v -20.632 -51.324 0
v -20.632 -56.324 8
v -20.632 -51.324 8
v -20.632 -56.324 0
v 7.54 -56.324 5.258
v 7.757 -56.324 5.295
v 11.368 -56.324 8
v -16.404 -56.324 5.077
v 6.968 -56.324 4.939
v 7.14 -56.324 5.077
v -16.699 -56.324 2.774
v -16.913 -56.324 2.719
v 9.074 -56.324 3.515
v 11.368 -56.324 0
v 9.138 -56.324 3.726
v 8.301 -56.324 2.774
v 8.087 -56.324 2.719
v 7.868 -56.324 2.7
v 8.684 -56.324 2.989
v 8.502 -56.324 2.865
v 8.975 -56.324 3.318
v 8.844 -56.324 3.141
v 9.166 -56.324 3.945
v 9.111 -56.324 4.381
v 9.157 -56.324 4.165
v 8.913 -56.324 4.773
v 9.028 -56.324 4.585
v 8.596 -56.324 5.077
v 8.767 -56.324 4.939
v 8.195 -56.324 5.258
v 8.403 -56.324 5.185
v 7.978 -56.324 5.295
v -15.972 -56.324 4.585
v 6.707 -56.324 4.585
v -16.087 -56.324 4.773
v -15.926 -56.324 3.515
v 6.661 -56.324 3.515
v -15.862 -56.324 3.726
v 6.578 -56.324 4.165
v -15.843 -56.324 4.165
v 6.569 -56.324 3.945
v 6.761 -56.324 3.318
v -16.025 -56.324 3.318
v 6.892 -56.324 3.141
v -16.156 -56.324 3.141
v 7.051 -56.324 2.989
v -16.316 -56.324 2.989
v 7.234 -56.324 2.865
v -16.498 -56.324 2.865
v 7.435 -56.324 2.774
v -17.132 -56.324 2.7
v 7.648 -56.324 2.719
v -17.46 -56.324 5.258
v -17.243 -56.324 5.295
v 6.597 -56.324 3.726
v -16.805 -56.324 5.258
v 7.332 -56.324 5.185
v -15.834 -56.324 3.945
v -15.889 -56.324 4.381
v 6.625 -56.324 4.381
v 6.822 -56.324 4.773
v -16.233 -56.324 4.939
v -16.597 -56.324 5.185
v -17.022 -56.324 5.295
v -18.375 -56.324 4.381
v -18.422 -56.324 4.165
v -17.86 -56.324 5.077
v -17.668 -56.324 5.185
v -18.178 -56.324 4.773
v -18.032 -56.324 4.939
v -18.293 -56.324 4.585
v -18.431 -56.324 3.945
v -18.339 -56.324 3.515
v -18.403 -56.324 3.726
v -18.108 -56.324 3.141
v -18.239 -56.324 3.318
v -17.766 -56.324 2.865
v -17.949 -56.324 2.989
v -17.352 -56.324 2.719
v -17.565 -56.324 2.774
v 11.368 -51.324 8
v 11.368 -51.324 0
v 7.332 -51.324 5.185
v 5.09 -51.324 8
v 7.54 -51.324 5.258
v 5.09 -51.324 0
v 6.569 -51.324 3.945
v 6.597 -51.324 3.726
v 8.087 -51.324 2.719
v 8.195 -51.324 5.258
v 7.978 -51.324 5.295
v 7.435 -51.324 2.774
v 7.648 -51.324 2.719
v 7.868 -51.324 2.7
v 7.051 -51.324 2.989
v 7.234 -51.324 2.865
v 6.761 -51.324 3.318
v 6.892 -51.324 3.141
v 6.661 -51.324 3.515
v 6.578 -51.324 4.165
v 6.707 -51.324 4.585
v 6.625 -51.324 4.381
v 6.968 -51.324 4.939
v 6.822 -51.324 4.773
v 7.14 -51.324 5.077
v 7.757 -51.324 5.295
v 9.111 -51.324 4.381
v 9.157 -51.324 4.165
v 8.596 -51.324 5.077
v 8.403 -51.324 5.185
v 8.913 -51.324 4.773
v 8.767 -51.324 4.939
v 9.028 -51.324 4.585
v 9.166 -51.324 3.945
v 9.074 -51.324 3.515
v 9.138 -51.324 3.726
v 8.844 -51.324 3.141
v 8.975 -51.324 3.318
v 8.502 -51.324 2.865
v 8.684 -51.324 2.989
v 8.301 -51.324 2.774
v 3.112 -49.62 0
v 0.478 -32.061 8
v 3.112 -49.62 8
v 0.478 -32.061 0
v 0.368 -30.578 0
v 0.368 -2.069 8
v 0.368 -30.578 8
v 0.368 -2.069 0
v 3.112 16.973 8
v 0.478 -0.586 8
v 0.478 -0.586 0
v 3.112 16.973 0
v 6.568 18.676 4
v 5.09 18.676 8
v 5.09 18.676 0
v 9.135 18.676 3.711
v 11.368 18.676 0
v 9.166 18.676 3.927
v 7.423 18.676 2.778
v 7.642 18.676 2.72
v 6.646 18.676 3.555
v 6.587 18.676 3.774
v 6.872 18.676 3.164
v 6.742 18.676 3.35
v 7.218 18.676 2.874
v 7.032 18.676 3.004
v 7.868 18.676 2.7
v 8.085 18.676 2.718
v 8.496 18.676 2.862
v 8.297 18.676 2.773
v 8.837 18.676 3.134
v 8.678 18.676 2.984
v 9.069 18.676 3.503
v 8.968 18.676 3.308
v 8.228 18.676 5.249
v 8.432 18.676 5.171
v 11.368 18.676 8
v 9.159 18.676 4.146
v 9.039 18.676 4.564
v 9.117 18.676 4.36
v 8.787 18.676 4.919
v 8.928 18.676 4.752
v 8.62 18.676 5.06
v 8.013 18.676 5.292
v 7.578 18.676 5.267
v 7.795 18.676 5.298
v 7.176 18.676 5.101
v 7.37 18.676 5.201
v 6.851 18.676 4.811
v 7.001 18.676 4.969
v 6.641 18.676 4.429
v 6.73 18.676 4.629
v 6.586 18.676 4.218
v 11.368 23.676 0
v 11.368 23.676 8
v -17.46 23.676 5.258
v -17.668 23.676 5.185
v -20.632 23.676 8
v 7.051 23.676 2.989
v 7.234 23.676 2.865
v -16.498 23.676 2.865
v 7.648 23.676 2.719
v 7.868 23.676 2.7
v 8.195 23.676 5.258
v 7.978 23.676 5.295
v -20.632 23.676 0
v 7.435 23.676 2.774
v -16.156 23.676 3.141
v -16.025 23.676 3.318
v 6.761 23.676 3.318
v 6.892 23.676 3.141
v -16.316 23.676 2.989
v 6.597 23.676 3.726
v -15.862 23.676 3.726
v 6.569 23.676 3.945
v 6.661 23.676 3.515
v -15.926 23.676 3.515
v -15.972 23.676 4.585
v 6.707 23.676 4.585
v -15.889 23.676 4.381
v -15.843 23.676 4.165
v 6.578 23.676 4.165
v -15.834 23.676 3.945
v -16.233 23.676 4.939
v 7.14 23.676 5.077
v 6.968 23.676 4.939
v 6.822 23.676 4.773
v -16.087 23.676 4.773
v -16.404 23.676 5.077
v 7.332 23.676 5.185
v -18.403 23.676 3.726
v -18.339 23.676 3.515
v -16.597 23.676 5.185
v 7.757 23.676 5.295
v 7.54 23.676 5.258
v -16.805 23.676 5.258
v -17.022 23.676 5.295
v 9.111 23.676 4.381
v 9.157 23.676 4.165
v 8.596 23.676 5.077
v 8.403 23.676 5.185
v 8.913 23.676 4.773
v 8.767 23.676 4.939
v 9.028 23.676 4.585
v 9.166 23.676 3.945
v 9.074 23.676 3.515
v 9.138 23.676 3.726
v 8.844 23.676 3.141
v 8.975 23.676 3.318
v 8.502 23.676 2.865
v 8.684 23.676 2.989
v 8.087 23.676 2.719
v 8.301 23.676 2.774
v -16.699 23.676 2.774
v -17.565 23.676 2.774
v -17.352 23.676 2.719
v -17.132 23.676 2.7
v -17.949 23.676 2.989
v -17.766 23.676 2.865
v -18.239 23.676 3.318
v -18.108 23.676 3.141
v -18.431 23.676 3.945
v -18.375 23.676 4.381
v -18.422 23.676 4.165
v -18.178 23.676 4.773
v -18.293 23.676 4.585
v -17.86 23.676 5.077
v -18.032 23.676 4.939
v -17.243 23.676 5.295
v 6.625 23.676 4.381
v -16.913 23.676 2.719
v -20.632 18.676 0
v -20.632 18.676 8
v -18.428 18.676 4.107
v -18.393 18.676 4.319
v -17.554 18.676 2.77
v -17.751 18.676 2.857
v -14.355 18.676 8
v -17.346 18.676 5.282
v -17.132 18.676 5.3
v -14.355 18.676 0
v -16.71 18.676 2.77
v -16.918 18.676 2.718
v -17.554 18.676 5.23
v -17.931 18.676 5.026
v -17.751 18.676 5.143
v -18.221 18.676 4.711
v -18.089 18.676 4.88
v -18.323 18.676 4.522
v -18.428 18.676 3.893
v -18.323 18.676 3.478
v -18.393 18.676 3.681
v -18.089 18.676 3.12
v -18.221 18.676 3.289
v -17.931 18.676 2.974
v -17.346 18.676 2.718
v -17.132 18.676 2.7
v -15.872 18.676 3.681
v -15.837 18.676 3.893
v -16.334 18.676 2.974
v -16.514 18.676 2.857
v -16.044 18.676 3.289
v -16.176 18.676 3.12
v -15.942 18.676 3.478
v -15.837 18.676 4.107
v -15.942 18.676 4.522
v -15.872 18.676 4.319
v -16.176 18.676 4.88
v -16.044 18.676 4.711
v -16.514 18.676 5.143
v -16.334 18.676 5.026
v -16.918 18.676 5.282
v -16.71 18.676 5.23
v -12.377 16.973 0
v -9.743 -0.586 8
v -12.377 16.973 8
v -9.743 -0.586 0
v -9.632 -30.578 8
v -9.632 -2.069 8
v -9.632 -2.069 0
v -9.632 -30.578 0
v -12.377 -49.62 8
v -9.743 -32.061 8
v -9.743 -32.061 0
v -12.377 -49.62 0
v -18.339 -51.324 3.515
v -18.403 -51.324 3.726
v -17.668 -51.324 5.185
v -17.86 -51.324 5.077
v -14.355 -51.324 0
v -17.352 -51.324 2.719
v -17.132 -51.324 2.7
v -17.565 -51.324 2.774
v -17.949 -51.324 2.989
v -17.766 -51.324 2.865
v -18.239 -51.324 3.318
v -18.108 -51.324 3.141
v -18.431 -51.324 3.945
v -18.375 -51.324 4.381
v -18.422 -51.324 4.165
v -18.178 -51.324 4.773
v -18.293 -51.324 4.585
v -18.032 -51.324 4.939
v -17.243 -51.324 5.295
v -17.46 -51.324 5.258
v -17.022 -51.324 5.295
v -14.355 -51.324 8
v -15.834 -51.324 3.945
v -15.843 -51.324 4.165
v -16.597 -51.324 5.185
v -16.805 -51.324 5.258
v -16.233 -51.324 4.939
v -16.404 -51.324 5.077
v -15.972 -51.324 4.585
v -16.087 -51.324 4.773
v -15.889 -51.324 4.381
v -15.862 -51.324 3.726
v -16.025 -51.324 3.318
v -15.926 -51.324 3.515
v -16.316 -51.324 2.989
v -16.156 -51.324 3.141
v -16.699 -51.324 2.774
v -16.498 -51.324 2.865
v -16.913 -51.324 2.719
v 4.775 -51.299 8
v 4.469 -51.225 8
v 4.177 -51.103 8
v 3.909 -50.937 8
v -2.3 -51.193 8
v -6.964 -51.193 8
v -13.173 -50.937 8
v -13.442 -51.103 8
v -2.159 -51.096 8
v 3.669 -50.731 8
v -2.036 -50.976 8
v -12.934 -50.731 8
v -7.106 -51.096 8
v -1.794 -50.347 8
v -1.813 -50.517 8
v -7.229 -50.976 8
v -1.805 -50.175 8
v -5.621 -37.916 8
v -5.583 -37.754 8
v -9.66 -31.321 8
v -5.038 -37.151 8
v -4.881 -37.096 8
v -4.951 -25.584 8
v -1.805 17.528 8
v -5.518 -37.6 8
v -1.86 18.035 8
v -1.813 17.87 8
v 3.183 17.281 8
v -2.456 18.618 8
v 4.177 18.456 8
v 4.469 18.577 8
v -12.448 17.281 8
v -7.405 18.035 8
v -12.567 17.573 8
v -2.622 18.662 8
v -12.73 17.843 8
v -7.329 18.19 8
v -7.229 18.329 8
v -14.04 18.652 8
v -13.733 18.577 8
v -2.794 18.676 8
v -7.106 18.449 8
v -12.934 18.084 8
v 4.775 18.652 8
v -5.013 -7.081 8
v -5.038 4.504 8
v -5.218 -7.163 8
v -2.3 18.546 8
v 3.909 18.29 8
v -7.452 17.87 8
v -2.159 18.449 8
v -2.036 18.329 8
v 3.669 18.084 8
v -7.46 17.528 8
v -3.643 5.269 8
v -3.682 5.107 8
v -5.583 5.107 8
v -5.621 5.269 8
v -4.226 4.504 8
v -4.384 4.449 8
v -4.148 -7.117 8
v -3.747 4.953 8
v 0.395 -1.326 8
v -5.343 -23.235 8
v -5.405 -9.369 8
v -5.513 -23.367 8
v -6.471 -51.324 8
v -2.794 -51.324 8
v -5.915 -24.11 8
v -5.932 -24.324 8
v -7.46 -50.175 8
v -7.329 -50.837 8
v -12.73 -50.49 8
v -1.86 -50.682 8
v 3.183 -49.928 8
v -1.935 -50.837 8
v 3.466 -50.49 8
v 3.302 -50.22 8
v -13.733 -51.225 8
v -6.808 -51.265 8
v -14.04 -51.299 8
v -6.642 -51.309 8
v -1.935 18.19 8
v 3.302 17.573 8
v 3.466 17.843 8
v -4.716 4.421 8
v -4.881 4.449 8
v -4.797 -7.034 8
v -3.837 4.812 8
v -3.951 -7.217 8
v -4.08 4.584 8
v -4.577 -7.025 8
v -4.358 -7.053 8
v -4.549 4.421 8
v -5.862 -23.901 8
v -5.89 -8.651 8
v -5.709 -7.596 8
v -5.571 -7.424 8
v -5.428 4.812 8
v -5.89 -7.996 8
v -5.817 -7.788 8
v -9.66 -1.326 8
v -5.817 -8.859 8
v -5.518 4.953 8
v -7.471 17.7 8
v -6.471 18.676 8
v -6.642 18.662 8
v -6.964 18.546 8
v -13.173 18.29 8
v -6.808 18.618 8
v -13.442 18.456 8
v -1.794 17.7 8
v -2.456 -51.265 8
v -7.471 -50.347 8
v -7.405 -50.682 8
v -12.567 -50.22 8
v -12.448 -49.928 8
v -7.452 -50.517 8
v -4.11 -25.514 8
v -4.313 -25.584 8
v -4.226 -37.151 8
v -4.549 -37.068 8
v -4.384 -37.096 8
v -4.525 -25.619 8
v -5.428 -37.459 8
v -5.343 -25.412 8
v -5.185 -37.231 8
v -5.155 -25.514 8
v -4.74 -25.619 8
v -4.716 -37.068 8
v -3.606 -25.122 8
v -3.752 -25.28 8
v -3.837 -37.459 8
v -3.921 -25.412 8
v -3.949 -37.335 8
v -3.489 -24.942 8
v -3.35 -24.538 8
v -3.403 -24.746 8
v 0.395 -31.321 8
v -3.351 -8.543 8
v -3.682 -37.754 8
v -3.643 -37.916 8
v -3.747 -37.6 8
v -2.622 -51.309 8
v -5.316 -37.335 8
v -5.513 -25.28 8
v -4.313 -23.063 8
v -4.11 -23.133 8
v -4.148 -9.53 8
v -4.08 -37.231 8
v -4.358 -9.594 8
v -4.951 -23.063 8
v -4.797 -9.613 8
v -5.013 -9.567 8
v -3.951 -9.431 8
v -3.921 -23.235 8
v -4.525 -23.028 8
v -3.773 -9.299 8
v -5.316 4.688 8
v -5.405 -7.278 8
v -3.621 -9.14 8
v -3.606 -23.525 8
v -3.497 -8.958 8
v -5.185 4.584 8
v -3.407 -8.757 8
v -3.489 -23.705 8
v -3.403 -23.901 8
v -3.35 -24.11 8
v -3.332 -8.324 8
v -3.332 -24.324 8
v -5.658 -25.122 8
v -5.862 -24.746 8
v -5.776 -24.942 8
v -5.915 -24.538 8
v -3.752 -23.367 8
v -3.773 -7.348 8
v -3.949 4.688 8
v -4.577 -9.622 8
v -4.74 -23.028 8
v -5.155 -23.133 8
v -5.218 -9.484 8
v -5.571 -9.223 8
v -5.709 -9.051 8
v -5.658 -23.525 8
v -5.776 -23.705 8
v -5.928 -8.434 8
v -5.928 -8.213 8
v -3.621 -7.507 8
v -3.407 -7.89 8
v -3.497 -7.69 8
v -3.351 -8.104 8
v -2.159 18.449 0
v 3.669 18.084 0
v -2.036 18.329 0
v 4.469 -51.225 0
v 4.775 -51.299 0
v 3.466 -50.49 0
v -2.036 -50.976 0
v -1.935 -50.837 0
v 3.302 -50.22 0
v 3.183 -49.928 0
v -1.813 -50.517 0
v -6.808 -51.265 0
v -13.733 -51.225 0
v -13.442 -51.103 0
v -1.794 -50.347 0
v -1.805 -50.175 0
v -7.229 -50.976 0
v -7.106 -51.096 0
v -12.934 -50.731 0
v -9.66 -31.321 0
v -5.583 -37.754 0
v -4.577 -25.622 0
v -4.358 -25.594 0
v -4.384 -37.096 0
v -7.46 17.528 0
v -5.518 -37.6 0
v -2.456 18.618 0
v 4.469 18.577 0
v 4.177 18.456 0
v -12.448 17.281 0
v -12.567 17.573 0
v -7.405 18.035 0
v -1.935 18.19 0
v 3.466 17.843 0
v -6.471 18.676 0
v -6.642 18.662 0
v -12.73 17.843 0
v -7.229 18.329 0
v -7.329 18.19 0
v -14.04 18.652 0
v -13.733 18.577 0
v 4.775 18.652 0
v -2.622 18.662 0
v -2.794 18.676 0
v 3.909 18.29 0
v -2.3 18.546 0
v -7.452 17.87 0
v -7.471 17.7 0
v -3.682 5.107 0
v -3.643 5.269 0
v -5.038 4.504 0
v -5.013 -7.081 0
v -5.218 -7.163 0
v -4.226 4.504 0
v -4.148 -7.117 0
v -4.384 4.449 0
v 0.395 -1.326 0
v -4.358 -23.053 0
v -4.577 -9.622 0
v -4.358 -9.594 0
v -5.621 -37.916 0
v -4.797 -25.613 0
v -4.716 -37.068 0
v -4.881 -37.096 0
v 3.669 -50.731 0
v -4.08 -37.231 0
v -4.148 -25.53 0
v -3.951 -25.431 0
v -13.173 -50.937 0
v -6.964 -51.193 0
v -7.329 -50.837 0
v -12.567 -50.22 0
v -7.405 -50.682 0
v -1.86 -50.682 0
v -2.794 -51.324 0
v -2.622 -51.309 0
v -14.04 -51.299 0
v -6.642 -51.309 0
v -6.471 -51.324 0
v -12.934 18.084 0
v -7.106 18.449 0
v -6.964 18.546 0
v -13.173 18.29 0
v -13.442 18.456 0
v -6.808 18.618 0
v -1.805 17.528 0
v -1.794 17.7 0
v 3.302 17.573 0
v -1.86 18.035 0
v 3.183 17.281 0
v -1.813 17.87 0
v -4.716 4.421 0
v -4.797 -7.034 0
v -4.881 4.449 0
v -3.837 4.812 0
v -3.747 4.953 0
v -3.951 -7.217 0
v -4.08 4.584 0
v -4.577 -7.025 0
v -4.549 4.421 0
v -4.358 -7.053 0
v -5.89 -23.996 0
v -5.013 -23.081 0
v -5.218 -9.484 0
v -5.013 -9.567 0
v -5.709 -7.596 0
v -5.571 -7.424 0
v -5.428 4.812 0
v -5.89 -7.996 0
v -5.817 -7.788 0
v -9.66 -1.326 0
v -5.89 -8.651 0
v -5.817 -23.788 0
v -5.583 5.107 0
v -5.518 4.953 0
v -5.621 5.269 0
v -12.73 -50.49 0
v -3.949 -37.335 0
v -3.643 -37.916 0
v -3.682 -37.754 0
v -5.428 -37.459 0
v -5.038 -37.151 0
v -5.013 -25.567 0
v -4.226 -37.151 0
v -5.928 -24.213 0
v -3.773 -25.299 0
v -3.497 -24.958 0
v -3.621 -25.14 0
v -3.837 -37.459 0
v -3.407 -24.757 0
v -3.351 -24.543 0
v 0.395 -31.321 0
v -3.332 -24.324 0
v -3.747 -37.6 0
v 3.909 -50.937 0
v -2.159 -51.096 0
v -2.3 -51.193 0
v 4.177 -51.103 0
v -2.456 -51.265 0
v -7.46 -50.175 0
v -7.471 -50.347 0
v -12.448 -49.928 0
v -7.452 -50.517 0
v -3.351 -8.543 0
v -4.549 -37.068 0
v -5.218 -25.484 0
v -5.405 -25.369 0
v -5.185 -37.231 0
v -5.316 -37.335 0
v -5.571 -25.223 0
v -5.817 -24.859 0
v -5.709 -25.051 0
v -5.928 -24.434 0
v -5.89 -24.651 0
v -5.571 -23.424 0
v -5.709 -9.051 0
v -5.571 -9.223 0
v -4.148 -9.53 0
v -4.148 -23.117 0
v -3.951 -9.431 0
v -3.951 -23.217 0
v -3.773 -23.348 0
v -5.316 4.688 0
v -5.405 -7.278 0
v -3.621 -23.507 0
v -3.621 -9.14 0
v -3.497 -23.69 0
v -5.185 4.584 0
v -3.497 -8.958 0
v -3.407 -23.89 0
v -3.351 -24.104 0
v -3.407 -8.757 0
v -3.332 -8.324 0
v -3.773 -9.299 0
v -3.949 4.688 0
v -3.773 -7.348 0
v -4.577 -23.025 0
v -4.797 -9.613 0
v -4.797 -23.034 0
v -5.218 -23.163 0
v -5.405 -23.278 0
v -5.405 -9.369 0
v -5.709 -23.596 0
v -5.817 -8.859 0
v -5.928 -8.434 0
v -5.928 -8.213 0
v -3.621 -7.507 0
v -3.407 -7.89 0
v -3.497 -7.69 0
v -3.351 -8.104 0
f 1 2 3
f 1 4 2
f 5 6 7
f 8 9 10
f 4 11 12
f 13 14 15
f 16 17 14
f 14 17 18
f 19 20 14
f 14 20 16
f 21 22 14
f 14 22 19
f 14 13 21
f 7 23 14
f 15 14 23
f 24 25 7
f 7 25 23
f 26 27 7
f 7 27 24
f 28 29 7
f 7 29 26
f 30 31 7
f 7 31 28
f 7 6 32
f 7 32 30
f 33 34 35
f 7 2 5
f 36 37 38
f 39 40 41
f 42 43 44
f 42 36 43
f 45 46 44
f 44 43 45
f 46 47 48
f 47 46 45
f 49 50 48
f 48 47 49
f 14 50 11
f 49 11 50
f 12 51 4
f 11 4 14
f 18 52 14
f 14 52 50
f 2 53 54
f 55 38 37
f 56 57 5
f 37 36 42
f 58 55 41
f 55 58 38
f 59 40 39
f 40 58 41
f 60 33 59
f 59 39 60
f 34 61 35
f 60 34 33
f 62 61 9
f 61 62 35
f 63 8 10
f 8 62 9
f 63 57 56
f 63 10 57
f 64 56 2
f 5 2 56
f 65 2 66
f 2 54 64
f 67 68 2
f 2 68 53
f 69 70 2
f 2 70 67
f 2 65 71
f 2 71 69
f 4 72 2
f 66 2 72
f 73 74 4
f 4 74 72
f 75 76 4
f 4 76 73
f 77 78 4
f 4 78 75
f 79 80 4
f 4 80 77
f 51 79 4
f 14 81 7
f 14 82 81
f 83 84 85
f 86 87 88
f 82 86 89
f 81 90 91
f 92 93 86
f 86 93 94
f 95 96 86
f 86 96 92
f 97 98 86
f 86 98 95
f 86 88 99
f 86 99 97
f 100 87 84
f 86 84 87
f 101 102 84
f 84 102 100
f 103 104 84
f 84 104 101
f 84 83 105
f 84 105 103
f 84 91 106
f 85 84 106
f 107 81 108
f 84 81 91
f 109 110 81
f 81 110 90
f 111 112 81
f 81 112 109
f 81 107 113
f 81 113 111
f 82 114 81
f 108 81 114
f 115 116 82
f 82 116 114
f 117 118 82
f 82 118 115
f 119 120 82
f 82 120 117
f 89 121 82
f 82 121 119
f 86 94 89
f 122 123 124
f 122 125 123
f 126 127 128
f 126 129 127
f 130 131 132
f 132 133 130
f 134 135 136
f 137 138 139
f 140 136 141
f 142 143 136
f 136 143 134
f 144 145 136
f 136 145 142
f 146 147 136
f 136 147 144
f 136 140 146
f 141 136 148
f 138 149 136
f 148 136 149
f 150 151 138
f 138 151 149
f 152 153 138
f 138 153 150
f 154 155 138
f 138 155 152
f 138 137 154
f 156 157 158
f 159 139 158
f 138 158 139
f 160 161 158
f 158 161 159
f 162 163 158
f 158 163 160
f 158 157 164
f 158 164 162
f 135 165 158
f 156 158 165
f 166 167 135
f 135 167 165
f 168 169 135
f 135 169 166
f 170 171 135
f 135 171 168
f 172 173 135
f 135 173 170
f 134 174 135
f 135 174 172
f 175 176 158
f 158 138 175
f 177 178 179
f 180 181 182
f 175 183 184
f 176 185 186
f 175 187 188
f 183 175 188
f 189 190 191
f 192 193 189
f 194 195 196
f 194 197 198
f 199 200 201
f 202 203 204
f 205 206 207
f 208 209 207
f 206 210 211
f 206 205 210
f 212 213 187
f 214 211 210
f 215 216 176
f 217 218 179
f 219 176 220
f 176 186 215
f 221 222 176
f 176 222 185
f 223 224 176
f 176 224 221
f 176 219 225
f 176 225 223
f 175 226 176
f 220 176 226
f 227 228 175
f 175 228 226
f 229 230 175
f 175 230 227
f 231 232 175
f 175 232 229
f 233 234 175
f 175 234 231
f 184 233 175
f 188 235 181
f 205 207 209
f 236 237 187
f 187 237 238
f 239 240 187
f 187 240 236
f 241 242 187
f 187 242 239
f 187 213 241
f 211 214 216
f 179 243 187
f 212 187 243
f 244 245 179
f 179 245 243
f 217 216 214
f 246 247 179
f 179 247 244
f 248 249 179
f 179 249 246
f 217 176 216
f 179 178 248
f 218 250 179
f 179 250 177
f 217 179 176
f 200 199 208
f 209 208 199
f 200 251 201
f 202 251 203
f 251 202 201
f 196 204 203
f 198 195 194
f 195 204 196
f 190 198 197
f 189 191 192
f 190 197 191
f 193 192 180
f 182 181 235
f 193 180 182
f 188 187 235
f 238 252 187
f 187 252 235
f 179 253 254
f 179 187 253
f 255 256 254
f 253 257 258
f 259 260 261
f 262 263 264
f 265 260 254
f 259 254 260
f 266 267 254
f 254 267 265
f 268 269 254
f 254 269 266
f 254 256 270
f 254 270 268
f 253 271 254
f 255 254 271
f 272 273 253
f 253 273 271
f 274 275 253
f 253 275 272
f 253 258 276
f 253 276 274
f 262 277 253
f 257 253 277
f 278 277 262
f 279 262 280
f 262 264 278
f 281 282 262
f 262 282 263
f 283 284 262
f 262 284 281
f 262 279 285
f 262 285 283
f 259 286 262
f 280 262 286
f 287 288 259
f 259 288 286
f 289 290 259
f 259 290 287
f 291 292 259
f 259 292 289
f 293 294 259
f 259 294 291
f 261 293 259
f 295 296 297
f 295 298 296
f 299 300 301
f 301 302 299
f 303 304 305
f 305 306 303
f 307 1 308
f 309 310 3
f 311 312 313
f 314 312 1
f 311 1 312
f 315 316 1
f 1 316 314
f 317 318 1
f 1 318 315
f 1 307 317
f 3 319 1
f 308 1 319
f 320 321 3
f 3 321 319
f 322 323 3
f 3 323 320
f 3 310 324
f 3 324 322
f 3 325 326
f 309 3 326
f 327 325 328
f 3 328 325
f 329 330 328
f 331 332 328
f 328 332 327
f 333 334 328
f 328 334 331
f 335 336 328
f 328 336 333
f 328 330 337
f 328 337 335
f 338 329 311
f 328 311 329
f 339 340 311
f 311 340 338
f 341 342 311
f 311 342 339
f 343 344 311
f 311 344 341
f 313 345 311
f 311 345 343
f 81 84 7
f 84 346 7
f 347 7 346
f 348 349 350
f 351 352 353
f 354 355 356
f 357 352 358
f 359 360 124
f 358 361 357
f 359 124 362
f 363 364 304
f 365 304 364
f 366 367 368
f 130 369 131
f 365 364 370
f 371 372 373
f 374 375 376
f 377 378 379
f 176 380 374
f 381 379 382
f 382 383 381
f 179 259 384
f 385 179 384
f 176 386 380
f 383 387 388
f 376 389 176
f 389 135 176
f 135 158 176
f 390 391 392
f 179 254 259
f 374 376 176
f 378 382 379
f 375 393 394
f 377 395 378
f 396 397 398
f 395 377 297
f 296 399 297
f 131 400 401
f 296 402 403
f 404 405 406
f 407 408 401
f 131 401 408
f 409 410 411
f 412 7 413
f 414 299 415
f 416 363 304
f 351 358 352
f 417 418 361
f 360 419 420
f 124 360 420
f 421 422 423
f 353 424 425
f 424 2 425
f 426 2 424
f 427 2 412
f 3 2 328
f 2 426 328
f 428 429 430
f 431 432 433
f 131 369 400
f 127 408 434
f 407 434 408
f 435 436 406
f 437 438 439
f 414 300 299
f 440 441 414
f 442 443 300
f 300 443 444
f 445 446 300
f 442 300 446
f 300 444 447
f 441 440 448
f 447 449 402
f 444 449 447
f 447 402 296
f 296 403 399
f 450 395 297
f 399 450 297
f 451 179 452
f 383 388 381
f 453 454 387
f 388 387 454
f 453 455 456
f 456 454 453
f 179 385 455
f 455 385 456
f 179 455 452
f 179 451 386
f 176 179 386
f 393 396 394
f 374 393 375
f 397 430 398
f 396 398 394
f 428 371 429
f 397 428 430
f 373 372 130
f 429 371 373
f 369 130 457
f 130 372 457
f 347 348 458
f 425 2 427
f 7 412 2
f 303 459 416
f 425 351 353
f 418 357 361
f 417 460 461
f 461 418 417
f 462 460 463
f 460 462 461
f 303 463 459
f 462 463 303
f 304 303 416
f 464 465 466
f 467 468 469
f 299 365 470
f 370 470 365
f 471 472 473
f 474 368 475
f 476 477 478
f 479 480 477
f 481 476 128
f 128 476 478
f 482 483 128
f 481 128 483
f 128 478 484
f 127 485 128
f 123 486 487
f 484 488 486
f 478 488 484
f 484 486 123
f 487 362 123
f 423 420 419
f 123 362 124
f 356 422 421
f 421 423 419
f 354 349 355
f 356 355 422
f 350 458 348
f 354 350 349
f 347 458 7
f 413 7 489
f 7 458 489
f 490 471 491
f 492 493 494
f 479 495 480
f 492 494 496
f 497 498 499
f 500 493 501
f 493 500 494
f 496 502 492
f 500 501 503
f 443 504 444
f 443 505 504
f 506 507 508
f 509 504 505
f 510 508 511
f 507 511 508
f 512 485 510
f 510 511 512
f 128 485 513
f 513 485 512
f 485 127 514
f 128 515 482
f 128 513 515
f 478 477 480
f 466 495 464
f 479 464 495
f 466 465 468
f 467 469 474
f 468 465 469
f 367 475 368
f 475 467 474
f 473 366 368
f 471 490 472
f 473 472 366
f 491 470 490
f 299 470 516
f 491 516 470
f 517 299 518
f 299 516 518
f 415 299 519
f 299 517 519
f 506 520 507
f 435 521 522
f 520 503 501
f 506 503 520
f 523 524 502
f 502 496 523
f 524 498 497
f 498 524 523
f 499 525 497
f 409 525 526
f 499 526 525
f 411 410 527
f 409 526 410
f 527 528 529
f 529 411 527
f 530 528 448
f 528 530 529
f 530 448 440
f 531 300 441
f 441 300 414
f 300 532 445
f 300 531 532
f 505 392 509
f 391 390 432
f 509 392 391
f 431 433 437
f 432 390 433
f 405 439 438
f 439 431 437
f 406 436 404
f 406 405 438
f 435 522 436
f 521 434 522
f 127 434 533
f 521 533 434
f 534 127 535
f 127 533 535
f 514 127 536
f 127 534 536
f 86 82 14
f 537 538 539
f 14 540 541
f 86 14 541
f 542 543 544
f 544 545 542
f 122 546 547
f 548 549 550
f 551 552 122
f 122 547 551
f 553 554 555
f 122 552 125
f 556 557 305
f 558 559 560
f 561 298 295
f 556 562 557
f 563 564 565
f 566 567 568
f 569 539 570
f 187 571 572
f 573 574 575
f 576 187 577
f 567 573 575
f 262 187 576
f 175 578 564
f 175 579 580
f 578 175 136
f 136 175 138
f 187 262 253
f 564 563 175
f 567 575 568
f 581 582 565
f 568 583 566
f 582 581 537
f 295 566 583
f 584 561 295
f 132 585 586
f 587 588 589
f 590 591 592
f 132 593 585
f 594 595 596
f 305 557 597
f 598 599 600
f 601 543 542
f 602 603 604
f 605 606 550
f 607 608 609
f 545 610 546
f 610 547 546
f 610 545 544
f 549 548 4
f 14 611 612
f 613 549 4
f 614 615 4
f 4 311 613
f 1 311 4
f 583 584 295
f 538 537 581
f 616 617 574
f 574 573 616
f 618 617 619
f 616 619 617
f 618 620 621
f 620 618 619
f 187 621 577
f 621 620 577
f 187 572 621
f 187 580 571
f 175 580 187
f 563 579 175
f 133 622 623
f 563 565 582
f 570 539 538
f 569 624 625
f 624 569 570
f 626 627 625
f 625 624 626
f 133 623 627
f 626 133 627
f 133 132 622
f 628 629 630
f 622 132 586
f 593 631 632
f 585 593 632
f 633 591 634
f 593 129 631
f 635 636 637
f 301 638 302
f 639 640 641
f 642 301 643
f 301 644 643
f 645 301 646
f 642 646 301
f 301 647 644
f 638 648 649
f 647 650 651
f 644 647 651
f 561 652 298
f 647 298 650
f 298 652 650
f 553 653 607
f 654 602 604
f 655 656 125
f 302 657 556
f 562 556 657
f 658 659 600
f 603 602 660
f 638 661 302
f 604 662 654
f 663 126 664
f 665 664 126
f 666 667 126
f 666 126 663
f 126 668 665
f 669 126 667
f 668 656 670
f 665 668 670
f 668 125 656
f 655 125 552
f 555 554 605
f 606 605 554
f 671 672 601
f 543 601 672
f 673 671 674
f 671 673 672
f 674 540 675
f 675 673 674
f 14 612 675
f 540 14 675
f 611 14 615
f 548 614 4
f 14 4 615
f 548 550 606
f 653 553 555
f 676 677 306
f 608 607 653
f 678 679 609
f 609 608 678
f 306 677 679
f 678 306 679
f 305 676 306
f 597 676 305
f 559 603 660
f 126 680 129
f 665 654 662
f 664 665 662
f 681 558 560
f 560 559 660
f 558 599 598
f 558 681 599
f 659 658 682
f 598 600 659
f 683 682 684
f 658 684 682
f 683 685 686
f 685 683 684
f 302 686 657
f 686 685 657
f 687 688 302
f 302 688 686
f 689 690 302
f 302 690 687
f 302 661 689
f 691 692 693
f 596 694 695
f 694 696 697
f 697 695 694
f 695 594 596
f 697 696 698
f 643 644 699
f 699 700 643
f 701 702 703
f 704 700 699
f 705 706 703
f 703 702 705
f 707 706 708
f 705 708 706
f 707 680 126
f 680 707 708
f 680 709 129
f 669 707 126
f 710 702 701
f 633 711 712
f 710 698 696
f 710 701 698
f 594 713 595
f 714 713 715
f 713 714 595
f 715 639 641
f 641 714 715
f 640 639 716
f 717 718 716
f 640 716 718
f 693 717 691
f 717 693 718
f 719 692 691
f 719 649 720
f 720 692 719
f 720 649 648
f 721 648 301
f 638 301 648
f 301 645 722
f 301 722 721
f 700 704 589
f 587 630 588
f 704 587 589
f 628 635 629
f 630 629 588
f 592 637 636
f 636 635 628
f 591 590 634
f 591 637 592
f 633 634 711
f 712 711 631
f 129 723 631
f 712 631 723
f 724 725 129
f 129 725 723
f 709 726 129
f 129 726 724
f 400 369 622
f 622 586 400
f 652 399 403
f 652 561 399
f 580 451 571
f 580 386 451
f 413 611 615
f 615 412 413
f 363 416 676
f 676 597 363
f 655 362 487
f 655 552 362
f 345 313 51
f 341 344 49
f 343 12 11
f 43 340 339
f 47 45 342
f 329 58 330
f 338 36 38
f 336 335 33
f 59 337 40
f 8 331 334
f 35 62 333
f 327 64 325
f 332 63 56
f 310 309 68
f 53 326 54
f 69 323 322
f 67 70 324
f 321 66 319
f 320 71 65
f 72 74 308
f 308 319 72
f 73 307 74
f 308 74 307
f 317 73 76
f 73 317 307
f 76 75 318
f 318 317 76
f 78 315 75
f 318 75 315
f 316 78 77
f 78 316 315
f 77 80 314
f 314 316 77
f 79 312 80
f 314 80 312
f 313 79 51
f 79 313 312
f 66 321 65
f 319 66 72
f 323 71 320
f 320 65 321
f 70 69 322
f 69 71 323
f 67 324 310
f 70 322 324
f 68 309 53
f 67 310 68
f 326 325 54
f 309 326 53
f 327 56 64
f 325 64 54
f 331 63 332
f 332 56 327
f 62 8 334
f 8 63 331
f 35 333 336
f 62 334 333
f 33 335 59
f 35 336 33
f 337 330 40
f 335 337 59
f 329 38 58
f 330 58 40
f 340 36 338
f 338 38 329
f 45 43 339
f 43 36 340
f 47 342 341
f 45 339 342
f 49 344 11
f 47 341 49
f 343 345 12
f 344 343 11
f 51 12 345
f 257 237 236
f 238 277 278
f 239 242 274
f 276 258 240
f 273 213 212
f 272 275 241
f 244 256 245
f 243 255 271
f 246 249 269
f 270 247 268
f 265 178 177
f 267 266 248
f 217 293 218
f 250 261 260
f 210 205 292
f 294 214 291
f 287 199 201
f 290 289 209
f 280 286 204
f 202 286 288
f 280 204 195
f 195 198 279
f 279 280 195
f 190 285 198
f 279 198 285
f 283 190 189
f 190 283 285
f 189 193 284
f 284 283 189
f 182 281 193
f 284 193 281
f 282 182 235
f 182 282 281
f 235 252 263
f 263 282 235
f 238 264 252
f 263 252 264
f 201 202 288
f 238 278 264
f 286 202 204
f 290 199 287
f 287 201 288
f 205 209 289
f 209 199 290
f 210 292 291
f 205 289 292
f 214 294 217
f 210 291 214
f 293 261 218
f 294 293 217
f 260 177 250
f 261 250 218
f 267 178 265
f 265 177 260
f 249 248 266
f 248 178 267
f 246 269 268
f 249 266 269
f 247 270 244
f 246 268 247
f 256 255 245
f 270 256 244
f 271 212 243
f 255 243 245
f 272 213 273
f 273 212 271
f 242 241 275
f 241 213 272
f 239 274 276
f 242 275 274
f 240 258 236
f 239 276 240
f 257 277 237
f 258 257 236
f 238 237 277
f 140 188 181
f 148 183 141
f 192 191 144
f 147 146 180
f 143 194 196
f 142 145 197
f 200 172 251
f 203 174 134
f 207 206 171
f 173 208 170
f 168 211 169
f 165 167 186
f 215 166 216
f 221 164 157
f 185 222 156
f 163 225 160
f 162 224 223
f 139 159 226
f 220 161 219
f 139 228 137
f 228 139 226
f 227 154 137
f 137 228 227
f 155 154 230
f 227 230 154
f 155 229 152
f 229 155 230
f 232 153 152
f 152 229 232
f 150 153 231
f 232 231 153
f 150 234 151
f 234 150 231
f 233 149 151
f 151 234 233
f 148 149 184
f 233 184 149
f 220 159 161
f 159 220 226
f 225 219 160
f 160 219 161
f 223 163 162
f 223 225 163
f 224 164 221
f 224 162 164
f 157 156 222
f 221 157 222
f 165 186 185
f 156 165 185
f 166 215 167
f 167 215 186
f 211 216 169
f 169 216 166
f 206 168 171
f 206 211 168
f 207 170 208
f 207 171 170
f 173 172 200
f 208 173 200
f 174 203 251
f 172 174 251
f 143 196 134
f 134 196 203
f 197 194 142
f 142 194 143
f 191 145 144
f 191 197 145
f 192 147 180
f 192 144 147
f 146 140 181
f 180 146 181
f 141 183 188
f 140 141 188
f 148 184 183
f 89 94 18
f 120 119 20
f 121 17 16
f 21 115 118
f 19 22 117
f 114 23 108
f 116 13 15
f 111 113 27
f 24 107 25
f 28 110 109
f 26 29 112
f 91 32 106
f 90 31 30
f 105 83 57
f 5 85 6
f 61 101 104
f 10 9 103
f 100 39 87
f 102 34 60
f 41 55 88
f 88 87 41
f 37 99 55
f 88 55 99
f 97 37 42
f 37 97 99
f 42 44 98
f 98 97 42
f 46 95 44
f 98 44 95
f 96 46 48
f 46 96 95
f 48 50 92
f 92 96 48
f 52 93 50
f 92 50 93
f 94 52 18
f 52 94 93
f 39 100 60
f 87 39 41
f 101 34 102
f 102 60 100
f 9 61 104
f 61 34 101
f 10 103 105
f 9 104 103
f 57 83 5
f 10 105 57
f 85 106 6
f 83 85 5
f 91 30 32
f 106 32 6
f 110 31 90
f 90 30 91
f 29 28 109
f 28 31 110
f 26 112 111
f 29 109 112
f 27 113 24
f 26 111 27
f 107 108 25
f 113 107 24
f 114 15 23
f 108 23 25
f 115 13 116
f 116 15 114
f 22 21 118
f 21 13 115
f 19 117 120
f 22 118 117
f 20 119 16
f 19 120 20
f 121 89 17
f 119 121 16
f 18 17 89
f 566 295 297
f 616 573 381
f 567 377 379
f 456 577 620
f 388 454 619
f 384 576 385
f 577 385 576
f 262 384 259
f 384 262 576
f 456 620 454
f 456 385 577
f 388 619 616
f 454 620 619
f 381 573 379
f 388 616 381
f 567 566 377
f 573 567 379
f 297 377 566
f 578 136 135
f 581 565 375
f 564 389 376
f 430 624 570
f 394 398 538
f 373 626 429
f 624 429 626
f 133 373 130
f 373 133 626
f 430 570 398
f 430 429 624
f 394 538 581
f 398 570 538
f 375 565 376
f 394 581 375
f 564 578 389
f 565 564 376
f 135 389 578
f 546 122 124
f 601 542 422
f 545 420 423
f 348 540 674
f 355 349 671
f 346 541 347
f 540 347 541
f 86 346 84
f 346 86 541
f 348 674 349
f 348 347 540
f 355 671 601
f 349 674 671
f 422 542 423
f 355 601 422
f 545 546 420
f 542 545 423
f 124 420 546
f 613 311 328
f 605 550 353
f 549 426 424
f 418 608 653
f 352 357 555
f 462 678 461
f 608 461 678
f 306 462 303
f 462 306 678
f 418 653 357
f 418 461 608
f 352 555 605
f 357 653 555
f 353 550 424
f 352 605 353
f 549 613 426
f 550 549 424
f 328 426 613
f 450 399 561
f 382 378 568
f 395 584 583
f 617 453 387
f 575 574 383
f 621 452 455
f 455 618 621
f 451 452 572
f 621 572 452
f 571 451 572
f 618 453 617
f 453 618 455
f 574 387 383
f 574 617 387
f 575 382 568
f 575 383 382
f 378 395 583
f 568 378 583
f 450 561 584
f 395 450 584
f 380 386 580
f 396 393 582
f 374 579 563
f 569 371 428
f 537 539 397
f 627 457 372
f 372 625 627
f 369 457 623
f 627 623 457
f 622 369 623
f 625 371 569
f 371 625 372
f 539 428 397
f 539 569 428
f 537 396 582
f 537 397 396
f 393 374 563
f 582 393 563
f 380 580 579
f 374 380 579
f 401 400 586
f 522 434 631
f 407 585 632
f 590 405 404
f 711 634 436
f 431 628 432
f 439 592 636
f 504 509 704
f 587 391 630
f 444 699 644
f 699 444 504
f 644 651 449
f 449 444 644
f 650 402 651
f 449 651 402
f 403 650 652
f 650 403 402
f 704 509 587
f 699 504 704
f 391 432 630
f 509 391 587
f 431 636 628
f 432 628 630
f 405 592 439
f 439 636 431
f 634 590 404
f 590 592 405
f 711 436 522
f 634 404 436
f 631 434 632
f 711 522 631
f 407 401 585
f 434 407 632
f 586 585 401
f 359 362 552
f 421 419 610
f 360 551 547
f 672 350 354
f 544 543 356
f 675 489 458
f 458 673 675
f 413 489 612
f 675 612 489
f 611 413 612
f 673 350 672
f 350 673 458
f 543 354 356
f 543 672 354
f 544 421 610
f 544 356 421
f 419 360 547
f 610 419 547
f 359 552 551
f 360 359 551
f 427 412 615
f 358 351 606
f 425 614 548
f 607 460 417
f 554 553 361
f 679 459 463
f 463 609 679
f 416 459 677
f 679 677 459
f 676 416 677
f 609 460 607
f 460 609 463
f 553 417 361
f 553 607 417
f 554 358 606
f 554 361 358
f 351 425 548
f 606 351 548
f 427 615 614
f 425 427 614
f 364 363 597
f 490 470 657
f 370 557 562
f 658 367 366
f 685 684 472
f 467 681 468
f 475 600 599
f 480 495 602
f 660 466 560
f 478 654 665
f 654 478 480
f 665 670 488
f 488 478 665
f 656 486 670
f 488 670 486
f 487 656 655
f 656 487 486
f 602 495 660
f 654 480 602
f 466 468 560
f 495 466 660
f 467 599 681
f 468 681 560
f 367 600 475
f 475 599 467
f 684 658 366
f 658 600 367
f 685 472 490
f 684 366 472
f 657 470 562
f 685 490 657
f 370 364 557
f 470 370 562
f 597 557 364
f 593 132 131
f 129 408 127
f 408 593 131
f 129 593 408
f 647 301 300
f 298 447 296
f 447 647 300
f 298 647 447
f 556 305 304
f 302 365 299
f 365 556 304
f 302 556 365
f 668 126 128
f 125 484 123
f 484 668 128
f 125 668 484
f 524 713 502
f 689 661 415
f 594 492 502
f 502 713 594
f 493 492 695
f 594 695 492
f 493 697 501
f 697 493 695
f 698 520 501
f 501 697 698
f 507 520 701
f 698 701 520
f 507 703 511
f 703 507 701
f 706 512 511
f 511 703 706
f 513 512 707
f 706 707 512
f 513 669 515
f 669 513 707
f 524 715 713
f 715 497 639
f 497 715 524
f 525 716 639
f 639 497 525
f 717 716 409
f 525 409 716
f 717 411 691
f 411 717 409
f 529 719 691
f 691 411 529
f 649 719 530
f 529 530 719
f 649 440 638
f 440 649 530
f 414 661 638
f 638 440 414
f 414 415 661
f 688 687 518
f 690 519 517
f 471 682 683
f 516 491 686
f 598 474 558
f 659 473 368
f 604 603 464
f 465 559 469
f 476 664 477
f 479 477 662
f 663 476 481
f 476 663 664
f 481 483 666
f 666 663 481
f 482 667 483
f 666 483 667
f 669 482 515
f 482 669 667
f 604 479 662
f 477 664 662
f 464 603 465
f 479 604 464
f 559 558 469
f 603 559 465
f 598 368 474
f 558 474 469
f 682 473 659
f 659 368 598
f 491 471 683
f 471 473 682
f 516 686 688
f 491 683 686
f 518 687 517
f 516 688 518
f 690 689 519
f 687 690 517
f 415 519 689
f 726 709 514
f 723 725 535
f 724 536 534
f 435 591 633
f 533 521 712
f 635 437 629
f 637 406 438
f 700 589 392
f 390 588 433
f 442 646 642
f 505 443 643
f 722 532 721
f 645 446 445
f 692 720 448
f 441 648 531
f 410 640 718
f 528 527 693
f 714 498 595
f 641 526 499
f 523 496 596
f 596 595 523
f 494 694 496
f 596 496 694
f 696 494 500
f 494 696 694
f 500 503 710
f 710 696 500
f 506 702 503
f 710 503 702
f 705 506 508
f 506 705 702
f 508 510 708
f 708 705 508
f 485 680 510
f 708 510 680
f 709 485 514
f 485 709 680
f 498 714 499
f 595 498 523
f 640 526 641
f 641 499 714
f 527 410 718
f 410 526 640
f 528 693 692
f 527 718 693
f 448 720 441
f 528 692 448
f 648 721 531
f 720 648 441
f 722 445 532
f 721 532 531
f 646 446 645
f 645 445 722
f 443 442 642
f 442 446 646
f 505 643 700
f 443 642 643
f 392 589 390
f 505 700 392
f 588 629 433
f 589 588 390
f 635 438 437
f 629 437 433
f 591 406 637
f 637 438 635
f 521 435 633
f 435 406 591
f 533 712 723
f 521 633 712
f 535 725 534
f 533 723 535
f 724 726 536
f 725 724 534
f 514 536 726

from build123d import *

# Parameters (mm, degrees)
BOSS_EXTRUDE1_DEPTH = 8
CUT_EXTRUDE1_REACH  = 62.515
SKETCH3_R           = 1.3
CUT_EXTRUDE2_DEPTH  = 84.004180545
FILLET6_R           = 2
FILLET7_R           = 1
FILLET8_R           = 10
CUT_EXTRUDE3_REACH  = 62.515
SKETCH4_R           = 1.3


with BuildPart() as part:
    # Sketch1 → Boss-Extrude1 (new body)
    with BuildSketch(Plane(origin=(0, 0, 0), x_dir=(0, 1, 0), z_dir=(0, 0, 1))):
        Polygon((-56.323529412, 20.632352941), (-56.323529412, -11.367647059), (-51.323529412, -11.367647059), (-51.323529412, -3.367647059), (-31.323529412, -0.367647059), (-1.323529412, -0.367647059), (18.676470588, -3.367647059), (18.676470588, -11.367647059), (23.676470588, -11.367647059), (23.676470588, 20.632352941), (18.676470588, 20.632352941), (18.676470588, 12.632352941), (-1.323529412, 9.632352941), (-31.323529412, 9.632352941), (-51.323529412, 12.632352941), (-51.323529412, 20.632352941), align=None)
    extrude(amount=BOSS_EXTRUDE1_DEPTH)

    # Sketch2 → Cut-Extrude1 (cut, up to next)
    with BuildSketch(Plane.XY.offset(8), mode=Mode.PRIVATE) as cut_extrude1_sk1:
        Polygon((-7.632352941, -51.323529412), (-4.632352941, -31.323529412), (-1.632352941, -51.323529412), align=None)
    cut_extrude1_tool1 = extrude(cut_extrude1_sk1.sketch, amount=-CUT_EXTRUDE1_REACH, mode=Mode.PRIVATE) & part.part
    # Sketch2 → Cut-Extrude1 (cut, up to next)
    with BuildSketch(Plane.XY.offset(8), mode=Mode.PRIVATE) as cut_extrude1_sk2:
        Polygon((-1.632352941, 18.676470588), (-7.632352941, 18.676470588), (-4.632352941, -1.323529412), align=None)
    cut_extrude1_tool2 = extrude(cut_extrude1_sk2.sketch, amount=-CUT_EXTRUDE1_REACH, mode=Mode.PRIVATE) & part.part
    add(cut_extrude1_tool1.solids().sort_by_distance((-4.632353, -44.656863, 8))[0], mode=Mode.SUBTRACT)
    add(cut_extrude1_tool2.solids().sort_by_distance((-4.632353, 12.009804, 8))[0], mode=Mode.SUBTRACT)

    # Sketch3 → Cut-Extrude2 (cut, through all)
    with BuildSketch(Plane.XZ.offset(56.323529412)):
        with Locations(Location((-17.132352941, 4, 0), (0, 0, 270))):
            Circle(SKETCH3_R)
        with Locations(Location((7.867647059, 4, 0), (0, 0, 270))):
            Circle(SKETCH3_R)
    extrude(amount=-CUT_EXTRUDE2_DEPTH, mode=Mode.SUBTRACT)

    # Fillet6
    fillet6_edges = [part.edges().sort_by_distance(p)[0] for p in [
        (-12.632352941, -51.323529412, 4),
        (-12.632352941, 18.676470588, 4),
        (3.367647059, 18.676470588, 4),
        (3.367647059, -51.323529412, 4),
    ]]
    fillet(fillet6_edges, radius=FILLET6_R)

    # Fillet7
    fillet7_edges = [part.edges().sort_by_distance(p)[0] for p in [
        (-1.632352941, -51.323529412, 4),
        (-7.632352941, -51.323529412, 4),
        (-4.632352941, -31.323529412, 4),
        (-1.632352941, 18.676470588, 4),
        (-4.632352941, -1.323529412, 4),
        (-7.632352941, 18.676470588, 4),
    ]]
    fillet(fillet7_edges, radius=FILLET7_R)

    # Fillet8
    fillet8_edges = [part.edges().sort_by_distance(p)[0] for p in [
        (-9.632352941, -31.323529412, 4),
        (-9.632352941, -1.323529412, 4),
        (0.367647059, -1.323529412, 4),
        (0.367647059, -31.323529412, 4),
    ]]
    fillet(fillet8_edges, radius=FILLET8_R)

    # Sketch4 → Cut-Extrude3 (cut, up to next)
    with BuildSketch(Plane.XY.offset(8), mode=Mode.PRIVATE) as cut_extrude3_sk1:
        with Locations((-4.632352941, -8.323529412)):
            Circle(SKETCH4_R)
    cut_extrude3_tool1 = extrude(cut_extrude3_sk1.sketch, amount=-CUT_EXTRUDE3_REACH, mode=Mode.PRIVATE) & part.part
    # Sketch4 → Cut-Extrude3 (cut, up to next)
    with BuildSketch(Plane.XY.offset(8), mode=Mode.PRIVATE) as cut_extrude3_sk2:
        with Locations((-4.632352941, -24.323529412)):
            Circle(SKETCH4_R)
    cut_extrude3_tool2 = extrude(cut_extrude3_sk2.sketch, amount=-CUT_EXTRUDE3_REACH, mode=Mode.PRIVATE) & part.part
    add(cut_extrude3_tool1.solids().sort_by_distance((-4.632353, -8.323529, 8))[0], mode=Mode.SUBTRACT)
    add(cut_extrude3_tool2.solids().sort_by_distance((-4.632353, -24.323529, 8))[0], mode=Mode.SUBTRACT)


solid = part.part
